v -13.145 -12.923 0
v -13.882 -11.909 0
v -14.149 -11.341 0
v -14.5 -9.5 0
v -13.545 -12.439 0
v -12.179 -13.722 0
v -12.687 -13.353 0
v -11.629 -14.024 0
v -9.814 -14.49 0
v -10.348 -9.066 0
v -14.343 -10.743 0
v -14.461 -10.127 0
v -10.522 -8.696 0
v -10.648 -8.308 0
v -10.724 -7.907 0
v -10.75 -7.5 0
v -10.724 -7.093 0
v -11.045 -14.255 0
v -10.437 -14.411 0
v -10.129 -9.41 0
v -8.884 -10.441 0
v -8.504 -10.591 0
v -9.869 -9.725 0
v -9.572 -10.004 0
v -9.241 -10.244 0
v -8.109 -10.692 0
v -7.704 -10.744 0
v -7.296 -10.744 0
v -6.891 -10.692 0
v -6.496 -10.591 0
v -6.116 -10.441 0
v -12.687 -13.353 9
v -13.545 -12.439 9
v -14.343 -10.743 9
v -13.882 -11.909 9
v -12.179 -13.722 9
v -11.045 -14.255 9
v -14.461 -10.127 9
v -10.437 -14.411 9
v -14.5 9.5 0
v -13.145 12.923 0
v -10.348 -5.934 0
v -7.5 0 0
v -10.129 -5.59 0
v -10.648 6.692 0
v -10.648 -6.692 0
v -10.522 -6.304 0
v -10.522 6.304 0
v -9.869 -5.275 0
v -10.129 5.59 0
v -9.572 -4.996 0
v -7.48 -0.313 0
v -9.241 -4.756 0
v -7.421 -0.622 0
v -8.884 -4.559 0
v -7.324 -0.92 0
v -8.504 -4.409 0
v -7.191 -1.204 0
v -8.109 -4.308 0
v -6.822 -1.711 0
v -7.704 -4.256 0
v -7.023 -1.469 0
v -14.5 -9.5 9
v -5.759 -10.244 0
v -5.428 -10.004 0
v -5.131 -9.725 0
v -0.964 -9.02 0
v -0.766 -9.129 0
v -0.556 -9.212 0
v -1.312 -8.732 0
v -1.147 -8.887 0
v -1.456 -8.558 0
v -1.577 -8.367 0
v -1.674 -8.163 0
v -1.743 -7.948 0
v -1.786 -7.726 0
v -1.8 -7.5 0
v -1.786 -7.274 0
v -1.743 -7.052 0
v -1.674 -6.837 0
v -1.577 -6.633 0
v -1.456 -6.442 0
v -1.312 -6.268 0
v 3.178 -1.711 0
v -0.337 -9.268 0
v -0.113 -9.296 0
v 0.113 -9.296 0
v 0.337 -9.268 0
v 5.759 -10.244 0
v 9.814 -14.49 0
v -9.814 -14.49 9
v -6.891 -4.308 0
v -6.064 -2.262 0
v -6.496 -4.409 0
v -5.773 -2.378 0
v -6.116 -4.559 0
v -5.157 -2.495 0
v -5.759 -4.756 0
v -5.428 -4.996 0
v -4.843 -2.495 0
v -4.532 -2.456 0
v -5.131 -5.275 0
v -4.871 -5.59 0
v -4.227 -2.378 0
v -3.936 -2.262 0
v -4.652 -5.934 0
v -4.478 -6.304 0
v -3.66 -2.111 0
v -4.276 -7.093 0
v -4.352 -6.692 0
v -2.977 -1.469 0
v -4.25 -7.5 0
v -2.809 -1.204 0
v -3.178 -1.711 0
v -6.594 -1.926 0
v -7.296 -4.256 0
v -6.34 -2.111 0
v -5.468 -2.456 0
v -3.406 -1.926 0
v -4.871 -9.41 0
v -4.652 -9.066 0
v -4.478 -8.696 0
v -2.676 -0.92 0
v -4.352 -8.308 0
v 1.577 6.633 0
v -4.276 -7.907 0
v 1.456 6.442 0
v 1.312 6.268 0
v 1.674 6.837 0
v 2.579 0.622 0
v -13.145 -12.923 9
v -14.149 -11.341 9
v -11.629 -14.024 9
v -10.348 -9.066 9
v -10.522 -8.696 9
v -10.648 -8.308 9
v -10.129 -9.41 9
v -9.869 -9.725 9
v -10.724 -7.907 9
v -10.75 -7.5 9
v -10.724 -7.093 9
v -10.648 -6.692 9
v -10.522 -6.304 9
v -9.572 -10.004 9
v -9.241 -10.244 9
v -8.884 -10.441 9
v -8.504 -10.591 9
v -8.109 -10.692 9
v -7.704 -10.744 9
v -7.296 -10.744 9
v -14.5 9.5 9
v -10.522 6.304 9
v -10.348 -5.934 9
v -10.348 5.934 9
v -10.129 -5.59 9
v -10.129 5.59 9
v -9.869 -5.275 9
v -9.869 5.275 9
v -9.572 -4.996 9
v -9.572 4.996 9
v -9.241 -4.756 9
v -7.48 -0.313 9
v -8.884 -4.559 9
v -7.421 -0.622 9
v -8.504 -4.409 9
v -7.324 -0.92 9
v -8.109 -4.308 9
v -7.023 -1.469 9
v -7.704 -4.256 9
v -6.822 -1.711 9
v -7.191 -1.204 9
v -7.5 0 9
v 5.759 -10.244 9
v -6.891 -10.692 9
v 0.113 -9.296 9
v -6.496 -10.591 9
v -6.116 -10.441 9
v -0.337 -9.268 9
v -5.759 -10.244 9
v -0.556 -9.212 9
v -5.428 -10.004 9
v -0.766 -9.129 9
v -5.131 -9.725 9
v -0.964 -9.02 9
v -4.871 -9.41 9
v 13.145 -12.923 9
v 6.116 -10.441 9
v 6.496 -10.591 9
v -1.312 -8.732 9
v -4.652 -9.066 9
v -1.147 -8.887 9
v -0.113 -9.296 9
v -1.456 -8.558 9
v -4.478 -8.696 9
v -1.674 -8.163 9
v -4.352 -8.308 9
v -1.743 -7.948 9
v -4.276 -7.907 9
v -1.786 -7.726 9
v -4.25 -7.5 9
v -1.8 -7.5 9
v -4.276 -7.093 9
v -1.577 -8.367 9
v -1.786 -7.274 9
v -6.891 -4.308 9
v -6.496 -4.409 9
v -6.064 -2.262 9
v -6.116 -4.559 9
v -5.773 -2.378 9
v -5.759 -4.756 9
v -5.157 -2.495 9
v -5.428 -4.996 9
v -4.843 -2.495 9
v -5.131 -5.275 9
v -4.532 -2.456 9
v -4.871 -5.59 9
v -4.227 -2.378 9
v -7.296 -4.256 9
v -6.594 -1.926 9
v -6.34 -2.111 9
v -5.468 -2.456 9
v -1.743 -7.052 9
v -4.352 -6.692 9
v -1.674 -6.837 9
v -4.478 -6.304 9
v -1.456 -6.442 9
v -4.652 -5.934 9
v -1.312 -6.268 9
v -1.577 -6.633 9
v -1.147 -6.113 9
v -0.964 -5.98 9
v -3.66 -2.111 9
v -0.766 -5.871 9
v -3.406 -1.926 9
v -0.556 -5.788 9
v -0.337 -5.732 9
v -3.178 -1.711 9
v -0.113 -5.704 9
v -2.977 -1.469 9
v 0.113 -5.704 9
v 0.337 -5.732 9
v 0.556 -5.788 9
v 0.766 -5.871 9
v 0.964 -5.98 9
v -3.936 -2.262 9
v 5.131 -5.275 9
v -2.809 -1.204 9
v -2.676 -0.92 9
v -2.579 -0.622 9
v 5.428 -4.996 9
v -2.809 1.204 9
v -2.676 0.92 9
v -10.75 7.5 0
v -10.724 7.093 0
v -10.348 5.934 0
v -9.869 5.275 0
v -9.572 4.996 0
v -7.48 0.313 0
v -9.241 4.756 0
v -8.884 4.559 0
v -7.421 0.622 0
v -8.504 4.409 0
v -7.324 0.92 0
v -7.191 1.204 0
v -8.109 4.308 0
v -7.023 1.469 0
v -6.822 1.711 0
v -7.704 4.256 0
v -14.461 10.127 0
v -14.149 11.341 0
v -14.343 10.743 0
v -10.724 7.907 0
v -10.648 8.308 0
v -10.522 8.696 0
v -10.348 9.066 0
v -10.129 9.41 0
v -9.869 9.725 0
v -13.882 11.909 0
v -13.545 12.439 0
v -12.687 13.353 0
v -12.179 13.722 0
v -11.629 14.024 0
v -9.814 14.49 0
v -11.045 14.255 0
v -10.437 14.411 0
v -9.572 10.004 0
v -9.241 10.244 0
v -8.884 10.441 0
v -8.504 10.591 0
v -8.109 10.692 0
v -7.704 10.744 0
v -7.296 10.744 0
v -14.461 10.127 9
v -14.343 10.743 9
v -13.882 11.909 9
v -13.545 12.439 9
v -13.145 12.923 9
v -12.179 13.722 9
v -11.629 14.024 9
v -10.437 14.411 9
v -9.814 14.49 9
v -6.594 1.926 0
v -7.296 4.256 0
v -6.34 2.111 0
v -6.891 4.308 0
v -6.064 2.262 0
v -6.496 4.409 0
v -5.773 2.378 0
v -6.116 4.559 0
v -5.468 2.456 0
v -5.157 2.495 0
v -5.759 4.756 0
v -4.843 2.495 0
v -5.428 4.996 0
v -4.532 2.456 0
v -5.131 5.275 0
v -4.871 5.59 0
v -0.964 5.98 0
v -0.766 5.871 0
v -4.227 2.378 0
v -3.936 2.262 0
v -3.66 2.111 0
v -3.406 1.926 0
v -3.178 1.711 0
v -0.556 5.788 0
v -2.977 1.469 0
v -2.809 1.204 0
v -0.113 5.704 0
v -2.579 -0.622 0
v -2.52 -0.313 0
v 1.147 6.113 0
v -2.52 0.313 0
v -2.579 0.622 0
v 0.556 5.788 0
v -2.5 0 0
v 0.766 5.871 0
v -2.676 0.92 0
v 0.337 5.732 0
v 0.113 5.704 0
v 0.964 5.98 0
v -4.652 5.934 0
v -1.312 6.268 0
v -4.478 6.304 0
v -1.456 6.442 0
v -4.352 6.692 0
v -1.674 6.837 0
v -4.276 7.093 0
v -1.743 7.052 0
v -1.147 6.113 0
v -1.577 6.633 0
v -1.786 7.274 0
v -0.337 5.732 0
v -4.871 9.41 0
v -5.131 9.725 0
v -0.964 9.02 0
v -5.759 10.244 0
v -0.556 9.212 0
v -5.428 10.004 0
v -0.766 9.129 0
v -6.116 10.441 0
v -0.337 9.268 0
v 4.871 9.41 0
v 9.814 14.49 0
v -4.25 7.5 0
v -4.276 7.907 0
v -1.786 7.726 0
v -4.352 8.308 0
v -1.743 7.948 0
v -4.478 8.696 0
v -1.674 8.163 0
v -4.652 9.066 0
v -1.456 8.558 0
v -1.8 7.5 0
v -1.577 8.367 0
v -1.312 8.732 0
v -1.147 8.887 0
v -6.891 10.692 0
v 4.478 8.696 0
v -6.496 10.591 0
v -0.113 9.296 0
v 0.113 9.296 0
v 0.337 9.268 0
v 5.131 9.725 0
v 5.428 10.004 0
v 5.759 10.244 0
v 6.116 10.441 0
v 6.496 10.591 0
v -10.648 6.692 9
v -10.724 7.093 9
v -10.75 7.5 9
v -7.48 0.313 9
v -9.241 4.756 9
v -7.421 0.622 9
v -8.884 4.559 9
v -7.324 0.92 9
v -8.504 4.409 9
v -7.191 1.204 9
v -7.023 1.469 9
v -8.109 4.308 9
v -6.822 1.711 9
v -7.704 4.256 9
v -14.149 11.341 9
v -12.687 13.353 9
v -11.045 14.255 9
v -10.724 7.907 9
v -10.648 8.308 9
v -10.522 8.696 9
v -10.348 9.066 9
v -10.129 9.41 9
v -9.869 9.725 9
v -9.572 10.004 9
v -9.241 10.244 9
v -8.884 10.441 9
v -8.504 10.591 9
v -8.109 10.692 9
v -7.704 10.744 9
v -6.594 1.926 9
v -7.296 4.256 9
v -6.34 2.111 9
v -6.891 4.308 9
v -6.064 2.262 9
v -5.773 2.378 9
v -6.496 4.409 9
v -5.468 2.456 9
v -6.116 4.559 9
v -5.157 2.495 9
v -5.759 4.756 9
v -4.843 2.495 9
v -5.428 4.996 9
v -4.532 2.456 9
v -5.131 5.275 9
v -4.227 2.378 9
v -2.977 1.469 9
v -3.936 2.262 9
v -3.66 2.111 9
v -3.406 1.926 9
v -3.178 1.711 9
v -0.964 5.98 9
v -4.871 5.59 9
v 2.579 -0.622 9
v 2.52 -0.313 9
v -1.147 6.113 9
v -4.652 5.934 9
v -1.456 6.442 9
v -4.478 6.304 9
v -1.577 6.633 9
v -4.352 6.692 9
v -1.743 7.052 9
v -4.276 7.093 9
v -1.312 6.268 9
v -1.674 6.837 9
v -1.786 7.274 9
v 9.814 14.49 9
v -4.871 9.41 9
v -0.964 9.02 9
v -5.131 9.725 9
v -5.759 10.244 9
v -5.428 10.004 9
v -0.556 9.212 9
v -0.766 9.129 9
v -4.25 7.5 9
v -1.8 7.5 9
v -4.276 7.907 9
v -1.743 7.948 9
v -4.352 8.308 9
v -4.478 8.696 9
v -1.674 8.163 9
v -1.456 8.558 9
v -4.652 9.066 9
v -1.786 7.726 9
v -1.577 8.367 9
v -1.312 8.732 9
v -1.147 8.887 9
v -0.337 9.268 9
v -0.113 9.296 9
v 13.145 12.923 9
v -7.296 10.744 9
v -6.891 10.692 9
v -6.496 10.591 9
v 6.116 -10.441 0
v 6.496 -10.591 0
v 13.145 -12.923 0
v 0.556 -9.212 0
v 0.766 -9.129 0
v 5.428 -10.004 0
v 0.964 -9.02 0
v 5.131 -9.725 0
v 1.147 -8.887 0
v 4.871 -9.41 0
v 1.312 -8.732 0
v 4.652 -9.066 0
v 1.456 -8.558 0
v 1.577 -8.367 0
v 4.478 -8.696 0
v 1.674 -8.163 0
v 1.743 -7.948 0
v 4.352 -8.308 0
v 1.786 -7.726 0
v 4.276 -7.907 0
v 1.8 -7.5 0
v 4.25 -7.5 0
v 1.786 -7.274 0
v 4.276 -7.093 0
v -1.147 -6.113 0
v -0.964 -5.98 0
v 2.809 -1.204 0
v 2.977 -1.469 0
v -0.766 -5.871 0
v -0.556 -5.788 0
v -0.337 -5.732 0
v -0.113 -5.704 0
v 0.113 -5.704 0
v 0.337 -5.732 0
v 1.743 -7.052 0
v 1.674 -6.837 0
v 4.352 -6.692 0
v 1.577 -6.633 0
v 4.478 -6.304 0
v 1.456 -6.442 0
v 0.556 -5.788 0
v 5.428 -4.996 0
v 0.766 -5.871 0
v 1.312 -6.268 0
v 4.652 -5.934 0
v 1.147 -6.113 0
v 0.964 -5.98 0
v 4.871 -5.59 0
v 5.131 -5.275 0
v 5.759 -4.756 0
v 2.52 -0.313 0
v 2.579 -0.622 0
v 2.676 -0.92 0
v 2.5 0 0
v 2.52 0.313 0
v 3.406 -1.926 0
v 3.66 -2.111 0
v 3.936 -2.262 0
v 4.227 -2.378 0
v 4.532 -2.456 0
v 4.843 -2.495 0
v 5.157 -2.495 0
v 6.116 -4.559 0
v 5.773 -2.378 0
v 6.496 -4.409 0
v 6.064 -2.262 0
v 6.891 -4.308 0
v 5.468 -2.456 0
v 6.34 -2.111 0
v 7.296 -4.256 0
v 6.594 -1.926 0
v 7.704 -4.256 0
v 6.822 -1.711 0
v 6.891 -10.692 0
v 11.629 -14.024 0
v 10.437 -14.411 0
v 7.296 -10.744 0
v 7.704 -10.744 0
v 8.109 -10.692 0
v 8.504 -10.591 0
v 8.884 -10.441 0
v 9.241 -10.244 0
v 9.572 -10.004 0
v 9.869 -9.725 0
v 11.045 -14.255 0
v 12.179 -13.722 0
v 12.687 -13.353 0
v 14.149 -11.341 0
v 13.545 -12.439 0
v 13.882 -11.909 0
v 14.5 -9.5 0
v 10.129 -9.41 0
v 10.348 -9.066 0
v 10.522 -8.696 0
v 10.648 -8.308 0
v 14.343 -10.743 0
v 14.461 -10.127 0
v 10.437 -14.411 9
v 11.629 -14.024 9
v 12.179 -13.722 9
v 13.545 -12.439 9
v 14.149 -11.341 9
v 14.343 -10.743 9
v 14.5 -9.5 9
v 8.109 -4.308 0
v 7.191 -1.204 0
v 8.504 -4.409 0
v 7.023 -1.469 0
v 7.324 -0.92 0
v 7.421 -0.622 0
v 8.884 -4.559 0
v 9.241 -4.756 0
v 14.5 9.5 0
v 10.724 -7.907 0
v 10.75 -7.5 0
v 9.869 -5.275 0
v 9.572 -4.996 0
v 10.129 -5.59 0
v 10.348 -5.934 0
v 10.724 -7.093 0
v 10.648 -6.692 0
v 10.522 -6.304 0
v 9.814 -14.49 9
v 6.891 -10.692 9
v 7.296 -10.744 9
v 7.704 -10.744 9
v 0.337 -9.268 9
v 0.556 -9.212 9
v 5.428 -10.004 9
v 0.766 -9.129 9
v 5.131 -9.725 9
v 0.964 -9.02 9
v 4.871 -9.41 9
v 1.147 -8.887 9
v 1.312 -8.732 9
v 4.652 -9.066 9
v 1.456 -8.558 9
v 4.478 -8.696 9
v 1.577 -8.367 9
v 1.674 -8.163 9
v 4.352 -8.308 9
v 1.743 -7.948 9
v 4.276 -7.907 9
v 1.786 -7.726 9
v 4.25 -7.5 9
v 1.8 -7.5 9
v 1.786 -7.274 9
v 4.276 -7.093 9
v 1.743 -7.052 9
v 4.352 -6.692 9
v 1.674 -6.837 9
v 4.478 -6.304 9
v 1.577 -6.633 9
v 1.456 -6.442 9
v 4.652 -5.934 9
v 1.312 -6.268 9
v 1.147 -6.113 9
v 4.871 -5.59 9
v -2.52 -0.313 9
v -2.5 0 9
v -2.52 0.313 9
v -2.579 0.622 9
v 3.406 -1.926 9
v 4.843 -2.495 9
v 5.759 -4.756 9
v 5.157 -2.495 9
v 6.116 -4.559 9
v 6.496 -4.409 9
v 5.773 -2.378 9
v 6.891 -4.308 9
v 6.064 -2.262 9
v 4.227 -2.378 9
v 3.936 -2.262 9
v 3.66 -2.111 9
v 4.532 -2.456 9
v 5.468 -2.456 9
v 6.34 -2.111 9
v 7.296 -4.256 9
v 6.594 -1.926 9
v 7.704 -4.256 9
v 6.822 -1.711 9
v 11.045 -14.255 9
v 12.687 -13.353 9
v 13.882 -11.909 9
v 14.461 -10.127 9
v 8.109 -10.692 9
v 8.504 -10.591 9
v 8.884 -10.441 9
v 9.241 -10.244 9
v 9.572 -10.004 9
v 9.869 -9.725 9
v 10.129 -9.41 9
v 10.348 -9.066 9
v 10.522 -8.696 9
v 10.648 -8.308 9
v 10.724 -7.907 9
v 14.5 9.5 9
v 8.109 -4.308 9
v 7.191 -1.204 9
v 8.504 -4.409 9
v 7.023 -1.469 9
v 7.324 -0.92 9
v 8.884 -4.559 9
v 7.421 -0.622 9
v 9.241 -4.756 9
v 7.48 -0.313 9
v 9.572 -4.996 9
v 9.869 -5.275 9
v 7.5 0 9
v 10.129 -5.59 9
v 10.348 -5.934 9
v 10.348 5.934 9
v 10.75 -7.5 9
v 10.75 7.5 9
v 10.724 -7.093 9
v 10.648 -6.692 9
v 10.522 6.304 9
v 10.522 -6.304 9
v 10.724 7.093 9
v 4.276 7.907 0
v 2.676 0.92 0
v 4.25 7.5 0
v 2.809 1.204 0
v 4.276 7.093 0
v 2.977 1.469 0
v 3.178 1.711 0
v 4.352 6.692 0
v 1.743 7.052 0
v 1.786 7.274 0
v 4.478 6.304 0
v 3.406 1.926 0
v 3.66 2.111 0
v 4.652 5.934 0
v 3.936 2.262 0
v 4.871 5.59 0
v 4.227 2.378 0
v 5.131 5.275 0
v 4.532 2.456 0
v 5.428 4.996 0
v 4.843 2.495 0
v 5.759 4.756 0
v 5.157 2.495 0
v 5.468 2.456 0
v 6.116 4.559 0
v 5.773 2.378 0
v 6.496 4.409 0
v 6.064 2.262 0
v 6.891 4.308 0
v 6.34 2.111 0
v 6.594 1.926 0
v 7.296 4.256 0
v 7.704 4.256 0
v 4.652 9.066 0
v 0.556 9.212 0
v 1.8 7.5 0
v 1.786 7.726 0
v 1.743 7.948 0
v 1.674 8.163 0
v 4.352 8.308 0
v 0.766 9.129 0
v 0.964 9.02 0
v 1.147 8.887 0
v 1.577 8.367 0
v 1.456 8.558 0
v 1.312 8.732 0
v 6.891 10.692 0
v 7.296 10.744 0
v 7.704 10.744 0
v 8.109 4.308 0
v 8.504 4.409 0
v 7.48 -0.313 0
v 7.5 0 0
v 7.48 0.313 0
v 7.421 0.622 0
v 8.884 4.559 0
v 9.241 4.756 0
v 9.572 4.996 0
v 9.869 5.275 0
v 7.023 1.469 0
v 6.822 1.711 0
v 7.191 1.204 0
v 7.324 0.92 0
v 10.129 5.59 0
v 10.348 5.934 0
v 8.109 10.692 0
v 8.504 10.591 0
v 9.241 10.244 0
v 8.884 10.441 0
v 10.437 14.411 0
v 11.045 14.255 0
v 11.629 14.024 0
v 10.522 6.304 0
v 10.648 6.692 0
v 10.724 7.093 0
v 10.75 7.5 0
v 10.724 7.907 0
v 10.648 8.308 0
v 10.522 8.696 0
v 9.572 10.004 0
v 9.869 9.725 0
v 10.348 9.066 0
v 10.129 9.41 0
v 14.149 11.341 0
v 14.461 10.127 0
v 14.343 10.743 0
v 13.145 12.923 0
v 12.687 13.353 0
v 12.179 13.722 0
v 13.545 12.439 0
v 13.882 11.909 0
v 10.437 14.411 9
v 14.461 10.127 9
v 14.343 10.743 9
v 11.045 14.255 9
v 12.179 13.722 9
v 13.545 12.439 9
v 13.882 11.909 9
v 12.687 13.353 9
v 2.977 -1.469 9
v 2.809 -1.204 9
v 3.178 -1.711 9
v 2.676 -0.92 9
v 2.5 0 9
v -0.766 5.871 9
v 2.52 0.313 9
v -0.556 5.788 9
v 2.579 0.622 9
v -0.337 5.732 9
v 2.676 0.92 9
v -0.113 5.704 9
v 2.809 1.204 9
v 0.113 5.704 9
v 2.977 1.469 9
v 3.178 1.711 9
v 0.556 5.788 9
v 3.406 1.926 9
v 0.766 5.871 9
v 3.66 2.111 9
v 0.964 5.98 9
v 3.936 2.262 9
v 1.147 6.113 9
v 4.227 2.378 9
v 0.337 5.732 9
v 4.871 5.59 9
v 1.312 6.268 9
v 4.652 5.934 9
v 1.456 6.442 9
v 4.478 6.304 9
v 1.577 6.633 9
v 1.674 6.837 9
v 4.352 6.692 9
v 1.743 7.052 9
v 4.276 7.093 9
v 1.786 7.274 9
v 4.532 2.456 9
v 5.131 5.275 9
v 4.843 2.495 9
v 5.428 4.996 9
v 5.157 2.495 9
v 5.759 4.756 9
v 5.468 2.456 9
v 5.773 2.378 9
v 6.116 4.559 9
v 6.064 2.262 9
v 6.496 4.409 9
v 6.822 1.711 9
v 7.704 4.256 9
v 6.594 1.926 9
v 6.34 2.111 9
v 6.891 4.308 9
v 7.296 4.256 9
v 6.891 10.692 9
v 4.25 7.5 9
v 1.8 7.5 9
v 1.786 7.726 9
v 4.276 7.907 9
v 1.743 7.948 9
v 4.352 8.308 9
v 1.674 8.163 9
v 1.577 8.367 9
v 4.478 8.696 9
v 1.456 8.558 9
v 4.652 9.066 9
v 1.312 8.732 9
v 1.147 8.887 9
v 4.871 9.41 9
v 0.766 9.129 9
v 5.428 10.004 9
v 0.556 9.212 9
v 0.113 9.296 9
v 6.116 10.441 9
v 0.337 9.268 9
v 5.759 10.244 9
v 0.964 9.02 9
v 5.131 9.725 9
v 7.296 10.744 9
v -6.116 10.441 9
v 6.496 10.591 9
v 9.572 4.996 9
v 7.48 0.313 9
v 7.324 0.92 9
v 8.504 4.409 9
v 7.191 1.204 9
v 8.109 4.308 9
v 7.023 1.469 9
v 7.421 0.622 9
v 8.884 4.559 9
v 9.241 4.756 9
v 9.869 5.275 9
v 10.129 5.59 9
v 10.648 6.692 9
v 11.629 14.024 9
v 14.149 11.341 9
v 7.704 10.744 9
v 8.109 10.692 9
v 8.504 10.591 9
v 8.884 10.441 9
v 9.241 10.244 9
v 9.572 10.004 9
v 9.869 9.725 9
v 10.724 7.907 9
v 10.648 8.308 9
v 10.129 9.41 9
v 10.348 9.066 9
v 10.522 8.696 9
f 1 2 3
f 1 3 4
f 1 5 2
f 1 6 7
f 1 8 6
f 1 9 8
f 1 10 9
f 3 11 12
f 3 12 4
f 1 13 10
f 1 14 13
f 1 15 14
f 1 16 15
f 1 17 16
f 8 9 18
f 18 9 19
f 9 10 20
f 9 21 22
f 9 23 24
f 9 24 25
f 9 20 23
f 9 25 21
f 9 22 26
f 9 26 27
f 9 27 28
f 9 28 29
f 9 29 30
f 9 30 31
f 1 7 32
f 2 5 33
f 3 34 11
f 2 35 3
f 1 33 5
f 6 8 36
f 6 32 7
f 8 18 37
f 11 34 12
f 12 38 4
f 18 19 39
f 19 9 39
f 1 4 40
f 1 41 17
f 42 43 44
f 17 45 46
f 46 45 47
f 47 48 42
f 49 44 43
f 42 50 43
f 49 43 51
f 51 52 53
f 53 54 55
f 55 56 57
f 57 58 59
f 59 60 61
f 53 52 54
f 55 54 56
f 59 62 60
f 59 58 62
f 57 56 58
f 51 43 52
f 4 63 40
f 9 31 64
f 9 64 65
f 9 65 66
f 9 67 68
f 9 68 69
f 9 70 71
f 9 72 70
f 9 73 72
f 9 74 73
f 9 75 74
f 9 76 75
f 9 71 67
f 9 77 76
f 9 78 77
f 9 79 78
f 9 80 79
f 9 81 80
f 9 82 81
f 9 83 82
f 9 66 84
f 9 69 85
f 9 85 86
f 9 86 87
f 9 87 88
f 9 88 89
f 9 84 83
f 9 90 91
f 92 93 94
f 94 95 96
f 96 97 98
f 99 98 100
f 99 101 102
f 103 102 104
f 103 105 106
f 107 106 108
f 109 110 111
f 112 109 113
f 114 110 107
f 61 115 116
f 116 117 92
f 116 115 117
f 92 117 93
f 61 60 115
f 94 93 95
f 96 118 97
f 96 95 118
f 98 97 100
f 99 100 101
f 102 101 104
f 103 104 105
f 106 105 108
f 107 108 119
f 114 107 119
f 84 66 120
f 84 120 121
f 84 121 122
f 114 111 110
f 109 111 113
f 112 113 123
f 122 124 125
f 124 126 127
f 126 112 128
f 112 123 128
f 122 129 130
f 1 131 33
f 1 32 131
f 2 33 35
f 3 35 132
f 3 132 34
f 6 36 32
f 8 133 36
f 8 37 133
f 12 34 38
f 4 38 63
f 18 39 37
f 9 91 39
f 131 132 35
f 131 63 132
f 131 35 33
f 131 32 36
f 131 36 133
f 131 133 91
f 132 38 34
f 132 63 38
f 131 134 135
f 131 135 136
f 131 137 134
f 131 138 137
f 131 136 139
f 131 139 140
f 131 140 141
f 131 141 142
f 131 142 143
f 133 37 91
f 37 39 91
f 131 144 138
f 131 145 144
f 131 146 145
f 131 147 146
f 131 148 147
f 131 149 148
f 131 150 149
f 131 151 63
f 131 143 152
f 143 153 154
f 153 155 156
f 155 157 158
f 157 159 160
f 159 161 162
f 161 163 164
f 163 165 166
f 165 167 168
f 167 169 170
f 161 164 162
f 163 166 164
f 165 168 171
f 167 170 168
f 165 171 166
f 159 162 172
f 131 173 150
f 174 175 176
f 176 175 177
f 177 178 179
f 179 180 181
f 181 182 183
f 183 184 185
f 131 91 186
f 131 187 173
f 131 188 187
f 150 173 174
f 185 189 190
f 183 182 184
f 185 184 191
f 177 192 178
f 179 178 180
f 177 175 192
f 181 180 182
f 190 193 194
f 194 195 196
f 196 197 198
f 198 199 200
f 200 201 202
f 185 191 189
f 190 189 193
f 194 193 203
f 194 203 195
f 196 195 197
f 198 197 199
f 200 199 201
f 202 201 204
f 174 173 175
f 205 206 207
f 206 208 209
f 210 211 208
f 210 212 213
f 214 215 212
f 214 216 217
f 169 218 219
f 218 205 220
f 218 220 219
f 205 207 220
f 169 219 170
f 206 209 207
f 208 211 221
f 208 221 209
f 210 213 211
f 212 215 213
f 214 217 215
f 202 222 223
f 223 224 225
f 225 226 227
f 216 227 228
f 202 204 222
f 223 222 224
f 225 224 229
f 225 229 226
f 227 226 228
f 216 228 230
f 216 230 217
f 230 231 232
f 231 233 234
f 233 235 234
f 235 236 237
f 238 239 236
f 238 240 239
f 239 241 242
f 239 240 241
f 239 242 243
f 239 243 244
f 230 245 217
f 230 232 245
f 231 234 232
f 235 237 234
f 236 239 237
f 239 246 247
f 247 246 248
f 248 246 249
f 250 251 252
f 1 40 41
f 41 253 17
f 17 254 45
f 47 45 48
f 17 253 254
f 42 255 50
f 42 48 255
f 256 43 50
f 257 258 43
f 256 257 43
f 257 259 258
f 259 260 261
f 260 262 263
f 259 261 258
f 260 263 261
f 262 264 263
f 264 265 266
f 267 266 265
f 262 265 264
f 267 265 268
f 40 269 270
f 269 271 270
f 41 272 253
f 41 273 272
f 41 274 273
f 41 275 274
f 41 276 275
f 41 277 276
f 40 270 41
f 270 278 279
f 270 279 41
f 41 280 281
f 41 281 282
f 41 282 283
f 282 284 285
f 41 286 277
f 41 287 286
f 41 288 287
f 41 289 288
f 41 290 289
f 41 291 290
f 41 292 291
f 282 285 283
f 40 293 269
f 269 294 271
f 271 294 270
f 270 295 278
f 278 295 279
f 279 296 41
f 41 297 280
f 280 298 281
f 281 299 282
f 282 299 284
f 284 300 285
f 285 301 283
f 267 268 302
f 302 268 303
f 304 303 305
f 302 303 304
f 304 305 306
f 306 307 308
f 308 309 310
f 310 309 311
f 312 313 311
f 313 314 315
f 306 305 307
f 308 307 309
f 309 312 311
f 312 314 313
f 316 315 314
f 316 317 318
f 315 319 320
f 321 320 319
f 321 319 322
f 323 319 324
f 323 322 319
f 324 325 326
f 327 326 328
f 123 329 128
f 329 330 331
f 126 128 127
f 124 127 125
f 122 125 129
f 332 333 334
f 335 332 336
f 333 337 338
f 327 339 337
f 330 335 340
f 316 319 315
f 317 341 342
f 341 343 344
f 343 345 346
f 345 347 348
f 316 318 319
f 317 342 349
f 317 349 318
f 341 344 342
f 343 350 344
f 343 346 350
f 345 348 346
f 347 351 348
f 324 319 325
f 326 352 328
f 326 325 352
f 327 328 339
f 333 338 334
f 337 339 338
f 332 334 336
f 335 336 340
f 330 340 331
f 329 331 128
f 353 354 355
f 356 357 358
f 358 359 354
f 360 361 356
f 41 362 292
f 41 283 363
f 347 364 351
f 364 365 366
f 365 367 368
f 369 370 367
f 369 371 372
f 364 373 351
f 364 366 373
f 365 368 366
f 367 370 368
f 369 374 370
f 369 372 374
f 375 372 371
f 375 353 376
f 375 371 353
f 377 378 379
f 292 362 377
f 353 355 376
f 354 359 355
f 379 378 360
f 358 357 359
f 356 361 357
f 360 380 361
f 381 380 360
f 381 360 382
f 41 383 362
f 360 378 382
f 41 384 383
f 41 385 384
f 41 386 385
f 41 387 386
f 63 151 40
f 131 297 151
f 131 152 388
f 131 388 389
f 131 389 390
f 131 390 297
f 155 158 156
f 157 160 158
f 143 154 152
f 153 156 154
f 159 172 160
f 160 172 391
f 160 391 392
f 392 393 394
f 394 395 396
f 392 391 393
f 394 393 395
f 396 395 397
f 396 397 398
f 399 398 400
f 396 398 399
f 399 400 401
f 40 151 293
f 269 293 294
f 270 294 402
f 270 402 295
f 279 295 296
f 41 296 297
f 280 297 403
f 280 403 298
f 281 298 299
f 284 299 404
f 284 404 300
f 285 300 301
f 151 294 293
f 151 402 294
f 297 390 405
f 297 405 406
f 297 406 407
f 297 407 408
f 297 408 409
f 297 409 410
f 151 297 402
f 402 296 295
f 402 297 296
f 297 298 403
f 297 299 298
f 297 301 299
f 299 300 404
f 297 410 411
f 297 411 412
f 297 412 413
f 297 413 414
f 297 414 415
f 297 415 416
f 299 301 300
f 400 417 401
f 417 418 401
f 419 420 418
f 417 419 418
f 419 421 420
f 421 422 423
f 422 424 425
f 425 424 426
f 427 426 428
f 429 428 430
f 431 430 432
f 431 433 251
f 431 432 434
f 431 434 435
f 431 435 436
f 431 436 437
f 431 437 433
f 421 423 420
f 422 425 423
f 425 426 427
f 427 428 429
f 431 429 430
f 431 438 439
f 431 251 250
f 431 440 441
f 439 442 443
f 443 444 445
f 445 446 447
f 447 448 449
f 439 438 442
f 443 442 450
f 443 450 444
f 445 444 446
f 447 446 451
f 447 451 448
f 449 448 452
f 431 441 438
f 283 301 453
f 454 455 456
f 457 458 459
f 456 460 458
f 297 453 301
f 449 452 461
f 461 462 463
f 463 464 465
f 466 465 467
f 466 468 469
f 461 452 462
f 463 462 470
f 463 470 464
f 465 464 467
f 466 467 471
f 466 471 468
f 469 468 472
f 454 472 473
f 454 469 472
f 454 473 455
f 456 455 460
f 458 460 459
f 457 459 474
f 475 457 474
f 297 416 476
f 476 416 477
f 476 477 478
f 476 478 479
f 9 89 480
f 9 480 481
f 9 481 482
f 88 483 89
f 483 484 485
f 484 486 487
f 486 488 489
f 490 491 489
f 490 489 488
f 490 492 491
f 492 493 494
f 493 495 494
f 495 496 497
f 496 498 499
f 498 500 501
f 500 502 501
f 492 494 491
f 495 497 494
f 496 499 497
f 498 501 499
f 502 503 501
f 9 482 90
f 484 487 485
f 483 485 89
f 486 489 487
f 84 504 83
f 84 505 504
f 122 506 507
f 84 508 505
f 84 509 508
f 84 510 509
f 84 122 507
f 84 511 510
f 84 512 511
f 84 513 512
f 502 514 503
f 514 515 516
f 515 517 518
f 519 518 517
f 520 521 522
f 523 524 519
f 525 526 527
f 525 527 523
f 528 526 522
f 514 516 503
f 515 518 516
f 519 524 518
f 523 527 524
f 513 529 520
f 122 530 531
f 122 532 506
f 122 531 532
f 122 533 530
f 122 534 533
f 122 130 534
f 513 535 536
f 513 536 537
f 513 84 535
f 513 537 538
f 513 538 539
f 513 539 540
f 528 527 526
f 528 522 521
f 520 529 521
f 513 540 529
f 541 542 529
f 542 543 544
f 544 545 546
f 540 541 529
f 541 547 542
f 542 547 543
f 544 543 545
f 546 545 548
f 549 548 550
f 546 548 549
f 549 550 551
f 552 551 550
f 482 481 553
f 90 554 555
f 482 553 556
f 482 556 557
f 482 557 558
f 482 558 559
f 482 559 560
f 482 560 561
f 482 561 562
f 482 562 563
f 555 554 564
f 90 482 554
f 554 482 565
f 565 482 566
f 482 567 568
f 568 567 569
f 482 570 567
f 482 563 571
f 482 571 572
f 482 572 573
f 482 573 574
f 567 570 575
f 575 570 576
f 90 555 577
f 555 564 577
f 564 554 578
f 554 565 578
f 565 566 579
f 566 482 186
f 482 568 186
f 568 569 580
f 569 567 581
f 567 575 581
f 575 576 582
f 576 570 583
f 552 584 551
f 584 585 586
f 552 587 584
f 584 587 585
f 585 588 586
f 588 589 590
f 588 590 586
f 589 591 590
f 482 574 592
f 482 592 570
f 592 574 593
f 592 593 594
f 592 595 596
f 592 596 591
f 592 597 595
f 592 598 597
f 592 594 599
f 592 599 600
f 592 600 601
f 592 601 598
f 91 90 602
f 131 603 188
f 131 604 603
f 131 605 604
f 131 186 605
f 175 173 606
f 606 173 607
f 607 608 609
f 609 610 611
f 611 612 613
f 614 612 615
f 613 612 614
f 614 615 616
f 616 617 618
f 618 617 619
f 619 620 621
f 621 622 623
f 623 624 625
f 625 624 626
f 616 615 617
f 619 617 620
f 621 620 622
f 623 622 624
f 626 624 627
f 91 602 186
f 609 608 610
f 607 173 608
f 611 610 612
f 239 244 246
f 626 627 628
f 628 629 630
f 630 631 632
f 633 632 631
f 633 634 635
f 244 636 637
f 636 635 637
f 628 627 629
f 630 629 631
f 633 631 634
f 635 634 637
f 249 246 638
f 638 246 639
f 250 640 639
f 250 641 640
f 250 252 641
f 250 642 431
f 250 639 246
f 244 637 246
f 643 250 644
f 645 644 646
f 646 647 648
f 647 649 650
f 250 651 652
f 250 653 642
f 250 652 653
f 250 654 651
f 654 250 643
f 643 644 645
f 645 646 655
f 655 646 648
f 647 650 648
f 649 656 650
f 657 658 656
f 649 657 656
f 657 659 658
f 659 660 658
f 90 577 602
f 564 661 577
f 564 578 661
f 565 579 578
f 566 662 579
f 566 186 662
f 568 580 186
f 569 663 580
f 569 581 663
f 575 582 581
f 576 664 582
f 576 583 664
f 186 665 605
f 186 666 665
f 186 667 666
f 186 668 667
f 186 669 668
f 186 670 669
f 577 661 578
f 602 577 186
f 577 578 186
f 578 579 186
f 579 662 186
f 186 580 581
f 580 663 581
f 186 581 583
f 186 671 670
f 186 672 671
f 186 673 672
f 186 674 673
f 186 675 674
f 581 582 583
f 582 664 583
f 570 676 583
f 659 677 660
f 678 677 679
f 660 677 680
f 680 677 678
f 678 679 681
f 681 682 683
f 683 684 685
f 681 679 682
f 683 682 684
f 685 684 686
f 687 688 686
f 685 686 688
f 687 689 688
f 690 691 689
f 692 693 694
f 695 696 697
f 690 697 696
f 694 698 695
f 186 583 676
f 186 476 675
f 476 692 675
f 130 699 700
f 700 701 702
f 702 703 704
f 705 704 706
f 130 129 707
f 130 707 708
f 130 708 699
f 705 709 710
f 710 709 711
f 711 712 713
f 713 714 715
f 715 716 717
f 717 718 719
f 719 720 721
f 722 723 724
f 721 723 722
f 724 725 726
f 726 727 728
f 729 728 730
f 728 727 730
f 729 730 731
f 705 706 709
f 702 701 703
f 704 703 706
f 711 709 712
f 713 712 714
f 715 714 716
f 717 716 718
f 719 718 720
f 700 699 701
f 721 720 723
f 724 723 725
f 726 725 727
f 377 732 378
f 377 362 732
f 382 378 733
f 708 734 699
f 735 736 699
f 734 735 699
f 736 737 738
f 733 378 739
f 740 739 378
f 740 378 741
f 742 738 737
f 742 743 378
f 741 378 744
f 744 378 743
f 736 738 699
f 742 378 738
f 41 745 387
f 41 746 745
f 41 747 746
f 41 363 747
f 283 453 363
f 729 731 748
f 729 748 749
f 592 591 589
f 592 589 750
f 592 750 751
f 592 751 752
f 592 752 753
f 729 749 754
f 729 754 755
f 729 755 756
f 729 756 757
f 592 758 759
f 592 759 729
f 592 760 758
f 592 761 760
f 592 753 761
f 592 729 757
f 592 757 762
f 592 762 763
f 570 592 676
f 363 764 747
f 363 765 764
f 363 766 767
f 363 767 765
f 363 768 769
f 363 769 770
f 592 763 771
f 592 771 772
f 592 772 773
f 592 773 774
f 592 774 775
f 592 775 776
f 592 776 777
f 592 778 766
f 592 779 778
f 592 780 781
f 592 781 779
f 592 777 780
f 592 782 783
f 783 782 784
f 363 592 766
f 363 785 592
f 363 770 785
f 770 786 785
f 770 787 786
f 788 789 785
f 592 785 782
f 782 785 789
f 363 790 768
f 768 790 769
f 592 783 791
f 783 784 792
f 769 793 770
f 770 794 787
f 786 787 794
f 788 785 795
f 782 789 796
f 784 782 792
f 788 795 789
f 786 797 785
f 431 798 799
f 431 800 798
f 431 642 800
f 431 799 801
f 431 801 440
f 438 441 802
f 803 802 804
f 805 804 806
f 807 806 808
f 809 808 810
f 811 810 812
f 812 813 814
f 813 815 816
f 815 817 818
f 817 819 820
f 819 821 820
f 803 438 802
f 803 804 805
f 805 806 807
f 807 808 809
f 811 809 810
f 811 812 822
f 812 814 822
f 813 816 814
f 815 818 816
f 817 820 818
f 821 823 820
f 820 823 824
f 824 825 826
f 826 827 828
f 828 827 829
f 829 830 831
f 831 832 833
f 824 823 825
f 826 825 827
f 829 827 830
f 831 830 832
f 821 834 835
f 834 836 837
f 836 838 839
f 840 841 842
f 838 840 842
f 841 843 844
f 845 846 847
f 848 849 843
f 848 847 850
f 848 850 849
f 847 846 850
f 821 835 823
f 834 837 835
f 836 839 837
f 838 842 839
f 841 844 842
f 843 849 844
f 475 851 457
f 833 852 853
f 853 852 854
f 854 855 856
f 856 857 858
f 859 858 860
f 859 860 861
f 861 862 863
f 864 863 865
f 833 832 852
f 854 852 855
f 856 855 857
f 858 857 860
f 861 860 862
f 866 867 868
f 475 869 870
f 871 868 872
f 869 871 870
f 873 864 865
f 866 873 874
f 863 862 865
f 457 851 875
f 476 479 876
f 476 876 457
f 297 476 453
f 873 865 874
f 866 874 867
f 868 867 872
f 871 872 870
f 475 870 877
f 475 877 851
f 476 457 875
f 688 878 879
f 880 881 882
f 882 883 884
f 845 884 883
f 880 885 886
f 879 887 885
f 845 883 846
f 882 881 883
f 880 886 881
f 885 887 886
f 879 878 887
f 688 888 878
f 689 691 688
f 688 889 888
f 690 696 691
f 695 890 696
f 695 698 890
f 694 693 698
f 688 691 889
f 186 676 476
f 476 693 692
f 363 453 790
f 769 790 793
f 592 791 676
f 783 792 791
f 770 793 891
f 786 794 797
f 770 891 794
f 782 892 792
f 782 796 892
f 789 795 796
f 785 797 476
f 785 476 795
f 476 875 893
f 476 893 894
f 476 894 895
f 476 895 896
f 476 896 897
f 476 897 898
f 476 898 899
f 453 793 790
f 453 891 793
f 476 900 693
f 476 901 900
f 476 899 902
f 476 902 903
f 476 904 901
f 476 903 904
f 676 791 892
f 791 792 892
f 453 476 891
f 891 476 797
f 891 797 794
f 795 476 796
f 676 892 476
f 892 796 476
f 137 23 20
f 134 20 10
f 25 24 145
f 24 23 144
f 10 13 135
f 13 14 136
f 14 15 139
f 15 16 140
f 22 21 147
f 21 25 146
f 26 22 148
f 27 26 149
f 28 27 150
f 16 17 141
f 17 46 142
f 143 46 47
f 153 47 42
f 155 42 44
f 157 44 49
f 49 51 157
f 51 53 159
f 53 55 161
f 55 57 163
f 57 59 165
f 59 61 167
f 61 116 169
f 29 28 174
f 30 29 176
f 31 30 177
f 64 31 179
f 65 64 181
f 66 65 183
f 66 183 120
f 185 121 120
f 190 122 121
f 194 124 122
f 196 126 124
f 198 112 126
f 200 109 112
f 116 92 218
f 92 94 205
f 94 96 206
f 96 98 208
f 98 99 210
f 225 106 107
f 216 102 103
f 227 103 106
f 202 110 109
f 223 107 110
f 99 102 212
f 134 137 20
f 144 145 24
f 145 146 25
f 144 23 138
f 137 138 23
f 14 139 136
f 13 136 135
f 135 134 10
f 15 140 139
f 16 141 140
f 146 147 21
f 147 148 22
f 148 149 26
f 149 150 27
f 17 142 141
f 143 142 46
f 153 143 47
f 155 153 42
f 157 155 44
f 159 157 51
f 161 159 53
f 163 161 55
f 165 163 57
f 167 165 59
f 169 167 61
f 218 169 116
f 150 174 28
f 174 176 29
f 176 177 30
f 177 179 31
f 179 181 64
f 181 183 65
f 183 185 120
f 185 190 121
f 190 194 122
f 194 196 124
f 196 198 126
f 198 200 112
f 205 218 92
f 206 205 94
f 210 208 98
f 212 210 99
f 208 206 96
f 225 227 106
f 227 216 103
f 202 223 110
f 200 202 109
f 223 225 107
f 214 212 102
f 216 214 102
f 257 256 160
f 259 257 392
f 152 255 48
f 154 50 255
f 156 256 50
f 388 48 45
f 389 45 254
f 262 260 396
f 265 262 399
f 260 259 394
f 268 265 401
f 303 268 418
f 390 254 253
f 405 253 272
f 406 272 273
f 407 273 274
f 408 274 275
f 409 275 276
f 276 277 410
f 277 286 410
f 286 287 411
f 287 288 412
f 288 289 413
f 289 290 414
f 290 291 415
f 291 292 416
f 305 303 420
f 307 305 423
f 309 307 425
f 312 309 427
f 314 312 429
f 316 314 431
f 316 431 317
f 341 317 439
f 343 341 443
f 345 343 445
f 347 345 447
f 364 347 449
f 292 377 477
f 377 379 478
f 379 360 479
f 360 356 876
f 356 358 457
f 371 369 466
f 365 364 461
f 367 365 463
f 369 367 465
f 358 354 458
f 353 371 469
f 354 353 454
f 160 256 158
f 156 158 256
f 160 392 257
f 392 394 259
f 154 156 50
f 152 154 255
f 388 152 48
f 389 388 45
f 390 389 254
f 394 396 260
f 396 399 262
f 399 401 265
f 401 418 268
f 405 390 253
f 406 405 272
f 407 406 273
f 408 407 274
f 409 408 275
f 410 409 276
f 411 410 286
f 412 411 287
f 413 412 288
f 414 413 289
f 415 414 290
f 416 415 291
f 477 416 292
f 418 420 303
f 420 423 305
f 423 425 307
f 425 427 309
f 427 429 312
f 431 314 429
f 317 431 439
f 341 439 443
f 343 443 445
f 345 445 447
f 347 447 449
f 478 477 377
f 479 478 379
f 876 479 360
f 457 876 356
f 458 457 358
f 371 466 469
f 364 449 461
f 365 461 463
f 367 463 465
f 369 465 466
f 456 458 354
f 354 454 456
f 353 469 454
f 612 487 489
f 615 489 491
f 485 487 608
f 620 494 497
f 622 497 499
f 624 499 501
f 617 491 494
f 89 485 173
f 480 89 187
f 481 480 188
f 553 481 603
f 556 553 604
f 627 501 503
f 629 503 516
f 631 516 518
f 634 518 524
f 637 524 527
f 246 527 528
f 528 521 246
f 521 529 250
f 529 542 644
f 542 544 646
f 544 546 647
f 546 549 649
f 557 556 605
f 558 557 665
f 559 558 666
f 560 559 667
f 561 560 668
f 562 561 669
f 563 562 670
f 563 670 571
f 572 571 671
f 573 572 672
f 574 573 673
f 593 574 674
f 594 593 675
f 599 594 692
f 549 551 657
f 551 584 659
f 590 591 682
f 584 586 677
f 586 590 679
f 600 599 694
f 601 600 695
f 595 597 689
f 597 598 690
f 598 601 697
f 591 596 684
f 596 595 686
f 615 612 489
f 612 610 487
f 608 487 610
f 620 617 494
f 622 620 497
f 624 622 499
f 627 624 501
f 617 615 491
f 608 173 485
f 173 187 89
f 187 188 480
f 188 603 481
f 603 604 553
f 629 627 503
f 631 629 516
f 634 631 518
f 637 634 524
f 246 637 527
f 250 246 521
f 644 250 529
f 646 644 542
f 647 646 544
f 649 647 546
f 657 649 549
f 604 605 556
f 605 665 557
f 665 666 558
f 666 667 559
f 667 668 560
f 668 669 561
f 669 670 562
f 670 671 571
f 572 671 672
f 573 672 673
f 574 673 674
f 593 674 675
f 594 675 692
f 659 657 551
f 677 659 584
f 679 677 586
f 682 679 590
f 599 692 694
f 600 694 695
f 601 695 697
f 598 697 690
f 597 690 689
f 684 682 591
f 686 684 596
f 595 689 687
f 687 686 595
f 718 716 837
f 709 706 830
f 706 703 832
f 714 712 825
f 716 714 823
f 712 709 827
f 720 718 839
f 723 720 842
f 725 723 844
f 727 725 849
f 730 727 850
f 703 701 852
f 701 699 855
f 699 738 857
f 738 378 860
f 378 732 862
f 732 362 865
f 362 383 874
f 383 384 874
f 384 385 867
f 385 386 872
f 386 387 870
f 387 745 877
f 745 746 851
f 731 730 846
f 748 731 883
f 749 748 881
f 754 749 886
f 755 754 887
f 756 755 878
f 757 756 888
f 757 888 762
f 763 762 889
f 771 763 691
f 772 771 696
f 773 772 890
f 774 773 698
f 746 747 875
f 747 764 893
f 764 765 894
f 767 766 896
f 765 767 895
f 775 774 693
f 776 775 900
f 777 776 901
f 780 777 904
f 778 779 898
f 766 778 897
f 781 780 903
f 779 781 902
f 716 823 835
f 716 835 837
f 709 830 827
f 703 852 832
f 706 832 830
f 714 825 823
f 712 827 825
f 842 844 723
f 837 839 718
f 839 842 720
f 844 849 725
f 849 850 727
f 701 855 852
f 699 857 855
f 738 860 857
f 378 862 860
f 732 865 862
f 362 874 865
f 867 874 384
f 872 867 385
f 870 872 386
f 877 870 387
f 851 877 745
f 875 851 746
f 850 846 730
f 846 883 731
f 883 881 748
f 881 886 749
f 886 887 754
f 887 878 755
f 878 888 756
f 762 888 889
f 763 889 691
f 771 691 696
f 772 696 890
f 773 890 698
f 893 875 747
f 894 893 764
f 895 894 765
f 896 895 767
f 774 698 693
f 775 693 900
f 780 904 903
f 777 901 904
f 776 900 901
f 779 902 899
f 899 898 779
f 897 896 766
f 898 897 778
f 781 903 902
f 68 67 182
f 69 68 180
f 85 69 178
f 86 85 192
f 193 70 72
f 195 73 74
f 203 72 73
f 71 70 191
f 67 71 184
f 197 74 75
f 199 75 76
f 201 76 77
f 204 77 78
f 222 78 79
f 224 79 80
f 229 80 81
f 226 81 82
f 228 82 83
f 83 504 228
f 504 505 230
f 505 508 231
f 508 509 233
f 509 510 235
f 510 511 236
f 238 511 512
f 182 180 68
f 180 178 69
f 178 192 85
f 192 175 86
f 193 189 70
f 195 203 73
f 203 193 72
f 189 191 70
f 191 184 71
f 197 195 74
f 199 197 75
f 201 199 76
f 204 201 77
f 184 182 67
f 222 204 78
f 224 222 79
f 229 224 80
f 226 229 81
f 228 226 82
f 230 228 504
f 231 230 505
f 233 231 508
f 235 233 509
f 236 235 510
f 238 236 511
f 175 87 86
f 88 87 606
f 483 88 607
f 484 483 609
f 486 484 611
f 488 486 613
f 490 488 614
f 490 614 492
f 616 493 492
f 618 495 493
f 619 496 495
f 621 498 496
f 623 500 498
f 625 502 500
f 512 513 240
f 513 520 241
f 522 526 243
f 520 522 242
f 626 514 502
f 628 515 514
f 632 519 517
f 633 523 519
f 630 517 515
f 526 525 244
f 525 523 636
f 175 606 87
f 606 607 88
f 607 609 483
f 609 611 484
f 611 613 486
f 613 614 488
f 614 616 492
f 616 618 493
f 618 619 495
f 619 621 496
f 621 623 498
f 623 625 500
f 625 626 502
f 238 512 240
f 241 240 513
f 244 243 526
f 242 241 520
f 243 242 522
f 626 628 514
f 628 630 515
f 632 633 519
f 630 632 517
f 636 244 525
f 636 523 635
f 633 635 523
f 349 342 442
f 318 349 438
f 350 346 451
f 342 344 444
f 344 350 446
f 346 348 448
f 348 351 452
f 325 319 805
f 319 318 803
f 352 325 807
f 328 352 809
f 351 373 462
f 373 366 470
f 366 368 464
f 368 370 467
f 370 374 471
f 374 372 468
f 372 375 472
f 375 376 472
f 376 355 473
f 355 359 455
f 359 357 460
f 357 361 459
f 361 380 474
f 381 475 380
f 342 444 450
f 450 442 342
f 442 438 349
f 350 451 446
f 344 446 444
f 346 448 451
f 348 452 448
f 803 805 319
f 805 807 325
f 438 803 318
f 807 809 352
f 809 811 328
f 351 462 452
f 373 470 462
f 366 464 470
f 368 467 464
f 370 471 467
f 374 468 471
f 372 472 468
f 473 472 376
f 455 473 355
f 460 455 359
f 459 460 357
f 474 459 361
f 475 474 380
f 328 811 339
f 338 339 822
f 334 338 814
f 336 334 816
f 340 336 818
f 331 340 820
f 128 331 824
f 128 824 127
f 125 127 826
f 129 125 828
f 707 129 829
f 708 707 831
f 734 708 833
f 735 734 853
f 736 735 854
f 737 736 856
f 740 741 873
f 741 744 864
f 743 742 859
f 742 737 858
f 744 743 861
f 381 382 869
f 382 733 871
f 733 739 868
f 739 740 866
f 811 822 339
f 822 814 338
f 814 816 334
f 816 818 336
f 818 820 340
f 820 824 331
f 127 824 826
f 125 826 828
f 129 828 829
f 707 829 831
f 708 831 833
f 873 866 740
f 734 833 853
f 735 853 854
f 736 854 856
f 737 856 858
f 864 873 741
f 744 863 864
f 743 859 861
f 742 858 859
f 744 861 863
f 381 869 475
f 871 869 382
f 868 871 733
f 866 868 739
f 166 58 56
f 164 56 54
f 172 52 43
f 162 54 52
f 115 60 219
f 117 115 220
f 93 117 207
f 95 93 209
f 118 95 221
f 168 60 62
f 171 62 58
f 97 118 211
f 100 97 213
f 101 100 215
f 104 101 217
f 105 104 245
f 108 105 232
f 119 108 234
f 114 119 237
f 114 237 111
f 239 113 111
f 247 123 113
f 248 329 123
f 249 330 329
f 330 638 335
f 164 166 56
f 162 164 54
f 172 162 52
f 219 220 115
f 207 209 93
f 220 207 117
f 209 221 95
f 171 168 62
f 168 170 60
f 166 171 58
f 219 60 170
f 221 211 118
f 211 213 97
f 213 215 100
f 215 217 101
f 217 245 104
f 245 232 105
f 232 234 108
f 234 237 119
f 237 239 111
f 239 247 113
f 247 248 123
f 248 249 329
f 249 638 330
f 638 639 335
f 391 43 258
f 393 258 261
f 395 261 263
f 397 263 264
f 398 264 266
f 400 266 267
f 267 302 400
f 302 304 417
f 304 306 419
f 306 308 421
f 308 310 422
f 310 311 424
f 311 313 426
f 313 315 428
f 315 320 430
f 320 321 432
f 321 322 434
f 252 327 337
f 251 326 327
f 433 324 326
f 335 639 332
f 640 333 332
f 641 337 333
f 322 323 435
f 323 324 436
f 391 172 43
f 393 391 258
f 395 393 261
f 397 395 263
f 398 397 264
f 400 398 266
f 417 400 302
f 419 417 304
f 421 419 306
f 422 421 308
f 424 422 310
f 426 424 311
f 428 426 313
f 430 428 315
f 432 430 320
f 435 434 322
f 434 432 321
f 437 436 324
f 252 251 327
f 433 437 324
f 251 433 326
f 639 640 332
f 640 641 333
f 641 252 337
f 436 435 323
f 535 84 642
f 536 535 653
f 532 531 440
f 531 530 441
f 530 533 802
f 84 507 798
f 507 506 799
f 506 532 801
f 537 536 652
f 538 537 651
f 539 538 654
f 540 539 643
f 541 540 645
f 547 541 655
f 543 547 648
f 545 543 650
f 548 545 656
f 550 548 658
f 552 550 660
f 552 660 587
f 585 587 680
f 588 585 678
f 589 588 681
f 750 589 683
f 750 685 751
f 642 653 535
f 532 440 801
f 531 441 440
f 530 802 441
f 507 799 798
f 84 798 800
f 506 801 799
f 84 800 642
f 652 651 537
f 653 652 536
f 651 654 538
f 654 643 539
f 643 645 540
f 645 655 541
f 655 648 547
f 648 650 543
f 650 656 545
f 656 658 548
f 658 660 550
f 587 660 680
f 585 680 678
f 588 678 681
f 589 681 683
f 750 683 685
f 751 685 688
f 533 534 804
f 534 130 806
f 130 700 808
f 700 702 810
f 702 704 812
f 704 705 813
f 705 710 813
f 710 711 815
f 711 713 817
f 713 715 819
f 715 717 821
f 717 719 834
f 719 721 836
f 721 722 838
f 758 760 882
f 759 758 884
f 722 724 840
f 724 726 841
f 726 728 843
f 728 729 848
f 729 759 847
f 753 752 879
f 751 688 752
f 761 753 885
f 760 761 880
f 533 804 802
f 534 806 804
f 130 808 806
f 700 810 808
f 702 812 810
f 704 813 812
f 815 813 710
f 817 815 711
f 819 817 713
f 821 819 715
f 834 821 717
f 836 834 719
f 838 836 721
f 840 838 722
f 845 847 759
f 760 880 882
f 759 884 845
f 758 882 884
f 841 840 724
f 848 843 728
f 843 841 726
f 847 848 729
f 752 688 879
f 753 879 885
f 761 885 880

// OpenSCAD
$fn = 50;

difference() {
	union() {
		hull() {
			translate(v = [-9.5, 9.5, 0]) {
				cylinder(h = 9, r = 5);
			}
			translate(v = [9.5, 9.5, 0]) {
				cylinder(h = 9, r = 5);
			}
			translate(v = [-9.5, -9.5, 0]) {
				cylinder(h = 9, r = 5);
			}
			translate(v = [9.5, -9.5, 0]) {
				cylinder(h = 9, r = 5);
			}
		}
	}
	union() {
		translate(v = [-7.5, -7.5, 0]) {
			cylinder(h = 9, r = 3.25);
		}
		translate(v = [-7.5, 7.5, 0]) {
			cylinder(h = 9, r = 3.25);
		}
		translate(v = [7.5, -7.5, 0]) {
			cylinder(h = 9, r = 3.25);
		}
		translate(v = [7.5, 7.5, 0]) {
			cylinder(h = 9, r = 3.25);
		}
		translate(v = [0.0, -7.5, 0]) {
			cylinder(h = 9, r = 1.8);
		}
		translate(v = [0.0, 7.5, 0]) {
			cylinder(h = 9, r = 1.8);
		}
		translate(v = [-5.0, 0, 0.0]) {
			cylinder(h = 9, r = 2.5);
		}
		translate(v = [5.0, 0, 0.0]) {
			cylinder(h = 9, r = 2.5);
		}
	}
}
